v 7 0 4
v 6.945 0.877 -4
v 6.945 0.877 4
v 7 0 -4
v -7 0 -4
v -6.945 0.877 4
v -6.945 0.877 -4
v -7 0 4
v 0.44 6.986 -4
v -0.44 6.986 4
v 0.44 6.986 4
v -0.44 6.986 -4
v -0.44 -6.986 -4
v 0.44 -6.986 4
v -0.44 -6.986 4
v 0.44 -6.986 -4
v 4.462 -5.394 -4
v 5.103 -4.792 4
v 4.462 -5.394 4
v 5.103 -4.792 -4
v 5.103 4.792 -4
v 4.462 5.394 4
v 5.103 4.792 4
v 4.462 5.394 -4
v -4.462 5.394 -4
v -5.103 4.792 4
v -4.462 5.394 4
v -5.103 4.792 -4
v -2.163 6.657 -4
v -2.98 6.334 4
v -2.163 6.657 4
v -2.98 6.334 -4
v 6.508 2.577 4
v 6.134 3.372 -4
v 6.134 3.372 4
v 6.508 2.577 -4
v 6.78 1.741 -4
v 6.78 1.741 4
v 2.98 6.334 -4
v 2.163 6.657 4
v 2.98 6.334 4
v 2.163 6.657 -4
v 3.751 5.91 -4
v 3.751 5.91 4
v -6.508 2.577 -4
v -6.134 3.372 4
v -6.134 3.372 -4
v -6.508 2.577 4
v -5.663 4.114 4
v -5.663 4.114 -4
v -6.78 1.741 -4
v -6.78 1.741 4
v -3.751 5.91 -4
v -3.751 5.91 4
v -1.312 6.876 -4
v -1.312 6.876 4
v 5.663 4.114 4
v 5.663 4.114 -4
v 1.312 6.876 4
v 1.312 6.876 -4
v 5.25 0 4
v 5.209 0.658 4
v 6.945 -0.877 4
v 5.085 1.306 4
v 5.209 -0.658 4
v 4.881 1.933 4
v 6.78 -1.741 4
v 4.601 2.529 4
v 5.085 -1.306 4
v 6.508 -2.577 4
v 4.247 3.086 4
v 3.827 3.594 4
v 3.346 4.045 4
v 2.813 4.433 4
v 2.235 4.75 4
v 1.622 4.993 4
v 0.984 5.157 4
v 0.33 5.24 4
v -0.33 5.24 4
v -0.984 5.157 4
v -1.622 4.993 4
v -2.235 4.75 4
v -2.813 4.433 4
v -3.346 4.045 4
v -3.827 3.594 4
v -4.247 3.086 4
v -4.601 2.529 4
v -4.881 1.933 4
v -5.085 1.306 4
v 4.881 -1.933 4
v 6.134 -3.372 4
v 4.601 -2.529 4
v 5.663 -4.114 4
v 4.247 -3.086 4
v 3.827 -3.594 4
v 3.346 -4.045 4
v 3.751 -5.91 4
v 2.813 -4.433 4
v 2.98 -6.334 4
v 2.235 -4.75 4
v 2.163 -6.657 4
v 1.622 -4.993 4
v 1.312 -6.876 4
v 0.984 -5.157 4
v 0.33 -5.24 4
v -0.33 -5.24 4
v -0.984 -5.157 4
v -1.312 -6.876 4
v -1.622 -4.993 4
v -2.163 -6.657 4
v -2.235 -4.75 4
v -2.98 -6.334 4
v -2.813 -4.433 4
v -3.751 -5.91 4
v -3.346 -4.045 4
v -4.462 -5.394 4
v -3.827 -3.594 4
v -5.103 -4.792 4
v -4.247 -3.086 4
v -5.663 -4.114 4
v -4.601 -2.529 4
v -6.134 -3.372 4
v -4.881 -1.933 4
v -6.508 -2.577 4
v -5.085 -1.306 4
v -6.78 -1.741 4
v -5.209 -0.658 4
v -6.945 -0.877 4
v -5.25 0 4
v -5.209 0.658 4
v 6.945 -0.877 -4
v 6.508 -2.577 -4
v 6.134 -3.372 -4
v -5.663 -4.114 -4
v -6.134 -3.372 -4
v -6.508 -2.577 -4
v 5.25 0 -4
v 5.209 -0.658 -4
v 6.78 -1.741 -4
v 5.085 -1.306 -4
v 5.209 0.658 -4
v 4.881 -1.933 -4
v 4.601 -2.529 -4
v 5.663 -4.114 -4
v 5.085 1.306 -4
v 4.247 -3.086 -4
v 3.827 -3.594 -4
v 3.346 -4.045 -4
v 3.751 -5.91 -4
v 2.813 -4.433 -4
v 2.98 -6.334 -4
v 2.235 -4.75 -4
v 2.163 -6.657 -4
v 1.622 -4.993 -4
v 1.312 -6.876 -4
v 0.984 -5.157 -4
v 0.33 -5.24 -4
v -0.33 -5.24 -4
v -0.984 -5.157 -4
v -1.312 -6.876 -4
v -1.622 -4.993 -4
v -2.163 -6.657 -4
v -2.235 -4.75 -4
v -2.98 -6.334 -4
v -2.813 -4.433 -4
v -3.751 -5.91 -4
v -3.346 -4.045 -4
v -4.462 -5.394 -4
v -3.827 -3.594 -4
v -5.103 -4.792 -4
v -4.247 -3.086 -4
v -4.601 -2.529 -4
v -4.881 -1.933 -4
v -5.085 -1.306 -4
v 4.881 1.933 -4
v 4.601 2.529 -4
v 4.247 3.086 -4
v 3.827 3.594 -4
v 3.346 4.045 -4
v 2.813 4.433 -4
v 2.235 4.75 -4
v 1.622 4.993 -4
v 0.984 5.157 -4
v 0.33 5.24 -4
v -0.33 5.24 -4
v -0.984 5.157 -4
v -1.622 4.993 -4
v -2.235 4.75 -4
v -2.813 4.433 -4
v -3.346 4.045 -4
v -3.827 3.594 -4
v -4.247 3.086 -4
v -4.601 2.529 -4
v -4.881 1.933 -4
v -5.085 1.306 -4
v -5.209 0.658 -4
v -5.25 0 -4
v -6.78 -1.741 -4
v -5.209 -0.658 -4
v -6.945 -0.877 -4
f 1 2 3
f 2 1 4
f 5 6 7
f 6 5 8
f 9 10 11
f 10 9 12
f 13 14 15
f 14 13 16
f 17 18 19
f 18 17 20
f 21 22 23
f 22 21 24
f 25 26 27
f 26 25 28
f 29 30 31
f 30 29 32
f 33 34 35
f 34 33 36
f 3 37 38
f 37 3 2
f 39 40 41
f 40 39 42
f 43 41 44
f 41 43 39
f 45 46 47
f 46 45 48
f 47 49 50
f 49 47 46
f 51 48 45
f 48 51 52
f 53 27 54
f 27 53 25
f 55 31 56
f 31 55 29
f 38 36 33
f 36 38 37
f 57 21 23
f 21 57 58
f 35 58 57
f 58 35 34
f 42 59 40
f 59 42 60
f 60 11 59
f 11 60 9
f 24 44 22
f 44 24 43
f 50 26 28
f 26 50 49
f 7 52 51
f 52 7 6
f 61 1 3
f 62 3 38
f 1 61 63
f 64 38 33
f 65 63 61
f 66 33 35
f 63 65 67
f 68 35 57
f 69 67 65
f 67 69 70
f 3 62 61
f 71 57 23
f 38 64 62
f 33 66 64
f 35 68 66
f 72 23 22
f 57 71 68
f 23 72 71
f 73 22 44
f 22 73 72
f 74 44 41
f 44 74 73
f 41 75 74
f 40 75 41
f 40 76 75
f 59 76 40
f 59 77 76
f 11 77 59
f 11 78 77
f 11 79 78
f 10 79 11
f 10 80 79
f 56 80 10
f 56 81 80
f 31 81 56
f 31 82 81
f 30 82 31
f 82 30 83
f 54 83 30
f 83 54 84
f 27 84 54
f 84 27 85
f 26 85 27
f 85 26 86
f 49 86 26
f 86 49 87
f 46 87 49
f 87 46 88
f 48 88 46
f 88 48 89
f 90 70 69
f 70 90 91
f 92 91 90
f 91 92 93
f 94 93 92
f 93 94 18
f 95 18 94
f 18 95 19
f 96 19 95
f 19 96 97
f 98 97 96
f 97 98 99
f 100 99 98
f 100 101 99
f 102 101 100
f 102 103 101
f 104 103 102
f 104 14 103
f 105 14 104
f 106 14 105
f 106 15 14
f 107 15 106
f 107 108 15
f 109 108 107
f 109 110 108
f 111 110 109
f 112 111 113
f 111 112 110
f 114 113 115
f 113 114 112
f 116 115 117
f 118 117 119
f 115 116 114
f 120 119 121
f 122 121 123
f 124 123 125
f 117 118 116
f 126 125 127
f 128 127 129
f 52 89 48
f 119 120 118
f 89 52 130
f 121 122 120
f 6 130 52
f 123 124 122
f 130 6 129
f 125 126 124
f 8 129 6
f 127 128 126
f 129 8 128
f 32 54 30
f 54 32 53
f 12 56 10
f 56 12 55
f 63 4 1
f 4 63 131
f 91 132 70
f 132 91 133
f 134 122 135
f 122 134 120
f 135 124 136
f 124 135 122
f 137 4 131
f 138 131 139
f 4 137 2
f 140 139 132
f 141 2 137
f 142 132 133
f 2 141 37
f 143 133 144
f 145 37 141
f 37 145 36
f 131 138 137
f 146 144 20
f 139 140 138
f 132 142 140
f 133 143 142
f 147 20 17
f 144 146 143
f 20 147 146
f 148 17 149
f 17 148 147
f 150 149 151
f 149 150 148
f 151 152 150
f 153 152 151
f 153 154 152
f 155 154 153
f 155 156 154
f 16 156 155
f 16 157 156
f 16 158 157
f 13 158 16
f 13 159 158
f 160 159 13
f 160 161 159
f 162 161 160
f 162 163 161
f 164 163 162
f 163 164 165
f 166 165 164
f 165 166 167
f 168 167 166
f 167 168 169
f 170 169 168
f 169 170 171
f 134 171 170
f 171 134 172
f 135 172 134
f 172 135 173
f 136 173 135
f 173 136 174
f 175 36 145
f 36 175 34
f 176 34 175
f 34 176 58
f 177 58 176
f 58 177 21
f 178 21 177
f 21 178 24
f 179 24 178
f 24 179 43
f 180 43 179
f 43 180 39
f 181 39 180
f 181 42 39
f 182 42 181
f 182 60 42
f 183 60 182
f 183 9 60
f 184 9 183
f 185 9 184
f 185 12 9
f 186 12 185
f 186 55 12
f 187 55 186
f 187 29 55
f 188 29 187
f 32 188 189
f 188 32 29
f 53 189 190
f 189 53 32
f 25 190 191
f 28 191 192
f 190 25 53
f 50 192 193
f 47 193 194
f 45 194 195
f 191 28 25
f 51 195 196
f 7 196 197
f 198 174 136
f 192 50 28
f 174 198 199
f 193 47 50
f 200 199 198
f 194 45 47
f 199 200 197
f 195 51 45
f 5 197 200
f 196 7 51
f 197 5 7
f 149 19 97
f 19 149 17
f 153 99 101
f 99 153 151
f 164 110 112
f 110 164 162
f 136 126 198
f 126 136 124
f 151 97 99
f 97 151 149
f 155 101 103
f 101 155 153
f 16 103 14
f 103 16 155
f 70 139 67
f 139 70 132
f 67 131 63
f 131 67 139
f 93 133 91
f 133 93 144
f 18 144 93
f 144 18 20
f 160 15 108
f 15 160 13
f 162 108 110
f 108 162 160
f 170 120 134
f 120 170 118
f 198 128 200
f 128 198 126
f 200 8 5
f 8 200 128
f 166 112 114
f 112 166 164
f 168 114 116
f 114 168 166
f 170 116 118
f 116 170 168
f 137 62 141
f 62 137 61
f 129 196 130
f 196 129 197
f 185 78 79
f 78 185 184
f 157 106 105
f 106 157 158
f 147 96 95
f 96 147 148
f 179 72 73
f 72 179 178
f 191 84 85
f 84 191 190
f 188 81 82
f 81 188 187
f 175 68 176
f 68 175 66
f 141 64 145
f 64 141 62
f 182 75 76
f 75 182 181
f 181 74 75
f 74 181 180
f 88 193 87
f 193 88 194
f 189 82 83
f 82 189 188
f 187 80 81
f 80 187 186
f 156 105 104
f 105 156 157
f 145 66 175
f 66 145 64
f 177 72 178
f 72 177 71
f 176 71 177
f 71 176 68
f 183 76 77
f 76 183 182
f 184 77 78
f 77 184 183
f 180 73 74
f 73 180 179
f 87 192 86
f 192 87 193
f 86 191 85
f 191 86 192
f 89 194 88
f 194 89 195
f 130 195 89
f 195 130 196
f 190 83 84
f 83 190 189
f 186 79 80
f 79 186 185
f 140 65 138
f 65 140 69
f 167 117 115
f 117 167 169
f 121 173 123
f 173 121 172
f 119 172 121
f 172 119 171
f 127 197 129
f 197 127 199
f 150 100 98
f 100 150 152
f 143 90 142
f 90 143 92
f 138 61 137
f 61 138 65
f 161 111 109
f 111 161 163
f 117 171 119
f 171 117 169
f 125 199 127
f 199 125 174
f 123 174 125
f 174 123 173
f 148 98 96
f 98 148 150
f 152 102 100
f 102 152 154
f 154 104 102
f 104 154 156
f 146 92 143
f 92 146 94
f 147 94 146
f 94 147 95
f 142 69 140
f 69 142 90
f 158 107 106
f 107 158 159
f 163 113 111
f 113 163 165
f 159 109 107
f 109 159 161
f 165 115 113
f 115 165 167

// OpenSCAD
$fn = 50;


difference() {
	union() {
		translate(v = [0, 0, -4.0000000000]) {
			cylinder(h = 8, r = 7.0000000000);
		}
	}
	union() {
		translate(v = [0, 0, -100.0000000000]) {
			cylinder(h = 200, r = 5.2500000000);
		}
	}
}
